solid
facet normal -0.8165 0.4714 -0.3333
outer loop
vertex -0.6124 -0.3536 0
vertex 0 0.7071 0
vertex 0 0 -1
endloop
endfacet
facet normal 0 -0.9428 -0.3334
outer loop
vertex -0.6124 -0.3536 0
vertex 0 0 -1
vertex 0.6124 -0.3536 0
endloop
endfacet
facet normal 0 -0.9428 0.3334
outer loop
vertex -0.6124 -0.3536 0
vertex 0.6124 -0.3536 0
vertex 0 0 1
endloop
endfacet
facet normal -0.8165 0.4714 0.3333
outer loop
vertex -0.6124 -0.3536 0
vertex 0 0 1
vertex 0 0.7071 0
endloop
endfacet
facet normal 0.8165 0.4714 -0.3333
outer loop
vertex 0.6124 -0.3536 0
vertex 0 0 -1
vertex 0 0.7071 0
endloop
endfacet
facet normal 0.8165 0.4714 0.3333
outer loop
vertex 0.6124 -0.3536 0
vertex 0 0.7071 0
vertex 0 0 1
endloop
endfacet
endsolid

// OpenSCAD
polyhedron( points = [[-0.612372435731774, -0.353553390614046, 0.0], [0.612372435680979, -0.353553390614046, 0.0], [6.34930572236608e-12, 3.66517905014194e-12, -1.0], [3.80958343341965e-11, 0.707106781220761, 0.0], [6.34930572236608e-12, 3.66640281610192e-12, 1.0]], faces = [[0, 3, 2], [0, 2, 1], [0, 1, 4], [0, 4, 3], [1, 2, 3], [1, 3, 4]]);
